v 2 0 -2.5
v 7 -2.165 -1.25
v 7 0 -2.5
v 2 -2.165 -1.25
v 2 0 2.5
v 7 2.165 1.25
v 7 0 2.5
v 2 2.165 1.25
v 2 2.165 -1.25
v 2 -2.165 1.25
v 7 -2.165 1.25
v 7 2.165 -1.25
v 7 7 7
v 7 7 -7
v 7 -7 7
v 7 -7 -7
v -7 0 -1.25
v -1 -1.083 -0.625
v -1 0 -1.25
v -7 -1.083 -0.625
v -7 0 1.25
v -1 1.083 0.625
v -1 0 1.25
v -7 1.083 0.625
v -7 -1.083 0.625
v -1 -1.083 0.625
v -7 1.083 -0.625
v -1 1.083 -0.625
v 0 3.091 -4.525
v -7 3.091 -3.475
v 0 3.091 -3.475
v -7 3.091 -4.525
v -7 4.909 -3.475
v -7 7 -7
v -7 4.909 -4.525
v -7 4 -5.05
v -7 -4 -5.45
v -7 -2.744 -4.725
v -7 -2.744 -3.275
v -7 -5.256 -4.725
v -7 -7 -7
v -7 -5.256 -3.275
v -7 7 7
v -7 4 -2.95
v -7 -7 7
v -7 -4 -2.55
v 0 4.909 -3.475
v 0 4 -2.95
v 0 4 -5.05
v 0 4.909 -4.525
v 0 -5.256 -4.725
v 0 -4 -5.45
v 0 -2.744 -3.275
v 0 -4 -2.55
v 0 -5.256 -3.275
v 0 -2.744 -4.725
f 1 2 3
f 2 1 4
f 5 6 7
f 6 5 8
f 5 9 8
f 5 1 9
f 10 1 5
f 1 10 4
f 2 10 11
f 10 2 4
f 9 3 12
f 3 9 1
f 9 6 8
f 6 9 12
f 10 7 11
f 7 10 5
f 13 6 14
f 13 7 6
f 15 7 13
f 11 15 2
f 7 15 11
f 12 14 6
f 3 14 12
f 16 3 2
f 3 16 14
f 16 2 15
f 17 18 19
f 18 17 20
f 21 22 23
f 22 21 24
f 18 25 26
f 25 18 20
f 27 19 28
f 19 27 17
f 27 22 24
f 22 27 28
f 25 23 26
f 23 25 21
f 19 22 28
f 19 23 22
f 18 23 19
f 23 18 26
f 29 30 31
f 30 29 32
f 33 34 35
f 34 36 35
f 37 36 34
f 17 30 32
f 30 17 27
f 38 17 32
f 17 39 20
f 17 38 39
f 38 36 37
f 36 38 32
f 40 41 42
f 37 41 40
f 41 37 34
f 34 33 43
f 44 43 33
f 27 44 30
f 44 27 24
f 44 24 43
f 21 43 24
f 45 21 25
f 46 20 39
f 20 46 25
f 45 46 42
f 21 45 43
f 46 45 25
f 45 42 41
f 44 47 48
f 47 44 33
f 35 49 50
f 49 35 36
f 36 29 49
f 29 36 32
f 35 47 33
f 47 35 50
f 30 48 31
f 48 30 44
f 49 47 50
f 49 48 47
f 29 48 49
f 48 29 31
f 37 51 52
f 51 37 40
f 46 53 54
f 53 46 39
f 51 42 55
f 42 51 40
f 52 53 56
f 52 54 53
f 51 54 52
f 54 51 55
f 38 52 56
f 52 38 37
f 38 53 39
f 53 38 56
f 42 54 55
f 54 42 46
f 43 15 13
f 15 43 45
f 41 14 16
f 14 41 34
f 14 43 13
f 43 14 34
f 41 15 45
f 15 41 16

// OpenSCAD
m3bolt = 3;
m3nut = 6;
m2p5bolt = 2.5;
m2p5nut = 5;

module testcube(boltd, nutd) {
  difference() {
    bh = sqrt(boltd*boltd/2);
    echo(bh);
    cube(14,center=true);
    union() {
      rotate([0,90,0]) cylinder(h=7, d=nutd, $fn=6);
      translate([-7,0,0]) rotate([45,0,0])
        cube([7,bh,bh],center=true);
      translate([-7,-4,-4]) rotate([45,0,0])
        cube([7,bh+0.4,bh+0.4],center=true);
      translate([-7,+4,-4]) rotate([45,0,0])
        cube([7,bh-0.4,bh-0.4],center=true);
    }
  }
}

module testcube2(boltd, nutd) {
  difference() {
    cube(14,center=true);
    union() {
      translate([2,0,0]) rotate([0,90,0]) cylinder(h=5, d=nutd, $fn=6);
      translate([-8,0,0]) rotate([0,90,0])
        cylinder(h=7, d=boltd, $fn=6);
      translate([-7,+4,-4]) rotate([0,90,0])
        cylinder(h=7, d=boltd-0.4, $fn=6);
      translate([-7,-4,-4]) rotate([0,90,0])
        cylinder(h=7, d=boltd+0.4, $fn=6);
    }
  }
}

testcube2(m2p5bolt, m2p5nut);
